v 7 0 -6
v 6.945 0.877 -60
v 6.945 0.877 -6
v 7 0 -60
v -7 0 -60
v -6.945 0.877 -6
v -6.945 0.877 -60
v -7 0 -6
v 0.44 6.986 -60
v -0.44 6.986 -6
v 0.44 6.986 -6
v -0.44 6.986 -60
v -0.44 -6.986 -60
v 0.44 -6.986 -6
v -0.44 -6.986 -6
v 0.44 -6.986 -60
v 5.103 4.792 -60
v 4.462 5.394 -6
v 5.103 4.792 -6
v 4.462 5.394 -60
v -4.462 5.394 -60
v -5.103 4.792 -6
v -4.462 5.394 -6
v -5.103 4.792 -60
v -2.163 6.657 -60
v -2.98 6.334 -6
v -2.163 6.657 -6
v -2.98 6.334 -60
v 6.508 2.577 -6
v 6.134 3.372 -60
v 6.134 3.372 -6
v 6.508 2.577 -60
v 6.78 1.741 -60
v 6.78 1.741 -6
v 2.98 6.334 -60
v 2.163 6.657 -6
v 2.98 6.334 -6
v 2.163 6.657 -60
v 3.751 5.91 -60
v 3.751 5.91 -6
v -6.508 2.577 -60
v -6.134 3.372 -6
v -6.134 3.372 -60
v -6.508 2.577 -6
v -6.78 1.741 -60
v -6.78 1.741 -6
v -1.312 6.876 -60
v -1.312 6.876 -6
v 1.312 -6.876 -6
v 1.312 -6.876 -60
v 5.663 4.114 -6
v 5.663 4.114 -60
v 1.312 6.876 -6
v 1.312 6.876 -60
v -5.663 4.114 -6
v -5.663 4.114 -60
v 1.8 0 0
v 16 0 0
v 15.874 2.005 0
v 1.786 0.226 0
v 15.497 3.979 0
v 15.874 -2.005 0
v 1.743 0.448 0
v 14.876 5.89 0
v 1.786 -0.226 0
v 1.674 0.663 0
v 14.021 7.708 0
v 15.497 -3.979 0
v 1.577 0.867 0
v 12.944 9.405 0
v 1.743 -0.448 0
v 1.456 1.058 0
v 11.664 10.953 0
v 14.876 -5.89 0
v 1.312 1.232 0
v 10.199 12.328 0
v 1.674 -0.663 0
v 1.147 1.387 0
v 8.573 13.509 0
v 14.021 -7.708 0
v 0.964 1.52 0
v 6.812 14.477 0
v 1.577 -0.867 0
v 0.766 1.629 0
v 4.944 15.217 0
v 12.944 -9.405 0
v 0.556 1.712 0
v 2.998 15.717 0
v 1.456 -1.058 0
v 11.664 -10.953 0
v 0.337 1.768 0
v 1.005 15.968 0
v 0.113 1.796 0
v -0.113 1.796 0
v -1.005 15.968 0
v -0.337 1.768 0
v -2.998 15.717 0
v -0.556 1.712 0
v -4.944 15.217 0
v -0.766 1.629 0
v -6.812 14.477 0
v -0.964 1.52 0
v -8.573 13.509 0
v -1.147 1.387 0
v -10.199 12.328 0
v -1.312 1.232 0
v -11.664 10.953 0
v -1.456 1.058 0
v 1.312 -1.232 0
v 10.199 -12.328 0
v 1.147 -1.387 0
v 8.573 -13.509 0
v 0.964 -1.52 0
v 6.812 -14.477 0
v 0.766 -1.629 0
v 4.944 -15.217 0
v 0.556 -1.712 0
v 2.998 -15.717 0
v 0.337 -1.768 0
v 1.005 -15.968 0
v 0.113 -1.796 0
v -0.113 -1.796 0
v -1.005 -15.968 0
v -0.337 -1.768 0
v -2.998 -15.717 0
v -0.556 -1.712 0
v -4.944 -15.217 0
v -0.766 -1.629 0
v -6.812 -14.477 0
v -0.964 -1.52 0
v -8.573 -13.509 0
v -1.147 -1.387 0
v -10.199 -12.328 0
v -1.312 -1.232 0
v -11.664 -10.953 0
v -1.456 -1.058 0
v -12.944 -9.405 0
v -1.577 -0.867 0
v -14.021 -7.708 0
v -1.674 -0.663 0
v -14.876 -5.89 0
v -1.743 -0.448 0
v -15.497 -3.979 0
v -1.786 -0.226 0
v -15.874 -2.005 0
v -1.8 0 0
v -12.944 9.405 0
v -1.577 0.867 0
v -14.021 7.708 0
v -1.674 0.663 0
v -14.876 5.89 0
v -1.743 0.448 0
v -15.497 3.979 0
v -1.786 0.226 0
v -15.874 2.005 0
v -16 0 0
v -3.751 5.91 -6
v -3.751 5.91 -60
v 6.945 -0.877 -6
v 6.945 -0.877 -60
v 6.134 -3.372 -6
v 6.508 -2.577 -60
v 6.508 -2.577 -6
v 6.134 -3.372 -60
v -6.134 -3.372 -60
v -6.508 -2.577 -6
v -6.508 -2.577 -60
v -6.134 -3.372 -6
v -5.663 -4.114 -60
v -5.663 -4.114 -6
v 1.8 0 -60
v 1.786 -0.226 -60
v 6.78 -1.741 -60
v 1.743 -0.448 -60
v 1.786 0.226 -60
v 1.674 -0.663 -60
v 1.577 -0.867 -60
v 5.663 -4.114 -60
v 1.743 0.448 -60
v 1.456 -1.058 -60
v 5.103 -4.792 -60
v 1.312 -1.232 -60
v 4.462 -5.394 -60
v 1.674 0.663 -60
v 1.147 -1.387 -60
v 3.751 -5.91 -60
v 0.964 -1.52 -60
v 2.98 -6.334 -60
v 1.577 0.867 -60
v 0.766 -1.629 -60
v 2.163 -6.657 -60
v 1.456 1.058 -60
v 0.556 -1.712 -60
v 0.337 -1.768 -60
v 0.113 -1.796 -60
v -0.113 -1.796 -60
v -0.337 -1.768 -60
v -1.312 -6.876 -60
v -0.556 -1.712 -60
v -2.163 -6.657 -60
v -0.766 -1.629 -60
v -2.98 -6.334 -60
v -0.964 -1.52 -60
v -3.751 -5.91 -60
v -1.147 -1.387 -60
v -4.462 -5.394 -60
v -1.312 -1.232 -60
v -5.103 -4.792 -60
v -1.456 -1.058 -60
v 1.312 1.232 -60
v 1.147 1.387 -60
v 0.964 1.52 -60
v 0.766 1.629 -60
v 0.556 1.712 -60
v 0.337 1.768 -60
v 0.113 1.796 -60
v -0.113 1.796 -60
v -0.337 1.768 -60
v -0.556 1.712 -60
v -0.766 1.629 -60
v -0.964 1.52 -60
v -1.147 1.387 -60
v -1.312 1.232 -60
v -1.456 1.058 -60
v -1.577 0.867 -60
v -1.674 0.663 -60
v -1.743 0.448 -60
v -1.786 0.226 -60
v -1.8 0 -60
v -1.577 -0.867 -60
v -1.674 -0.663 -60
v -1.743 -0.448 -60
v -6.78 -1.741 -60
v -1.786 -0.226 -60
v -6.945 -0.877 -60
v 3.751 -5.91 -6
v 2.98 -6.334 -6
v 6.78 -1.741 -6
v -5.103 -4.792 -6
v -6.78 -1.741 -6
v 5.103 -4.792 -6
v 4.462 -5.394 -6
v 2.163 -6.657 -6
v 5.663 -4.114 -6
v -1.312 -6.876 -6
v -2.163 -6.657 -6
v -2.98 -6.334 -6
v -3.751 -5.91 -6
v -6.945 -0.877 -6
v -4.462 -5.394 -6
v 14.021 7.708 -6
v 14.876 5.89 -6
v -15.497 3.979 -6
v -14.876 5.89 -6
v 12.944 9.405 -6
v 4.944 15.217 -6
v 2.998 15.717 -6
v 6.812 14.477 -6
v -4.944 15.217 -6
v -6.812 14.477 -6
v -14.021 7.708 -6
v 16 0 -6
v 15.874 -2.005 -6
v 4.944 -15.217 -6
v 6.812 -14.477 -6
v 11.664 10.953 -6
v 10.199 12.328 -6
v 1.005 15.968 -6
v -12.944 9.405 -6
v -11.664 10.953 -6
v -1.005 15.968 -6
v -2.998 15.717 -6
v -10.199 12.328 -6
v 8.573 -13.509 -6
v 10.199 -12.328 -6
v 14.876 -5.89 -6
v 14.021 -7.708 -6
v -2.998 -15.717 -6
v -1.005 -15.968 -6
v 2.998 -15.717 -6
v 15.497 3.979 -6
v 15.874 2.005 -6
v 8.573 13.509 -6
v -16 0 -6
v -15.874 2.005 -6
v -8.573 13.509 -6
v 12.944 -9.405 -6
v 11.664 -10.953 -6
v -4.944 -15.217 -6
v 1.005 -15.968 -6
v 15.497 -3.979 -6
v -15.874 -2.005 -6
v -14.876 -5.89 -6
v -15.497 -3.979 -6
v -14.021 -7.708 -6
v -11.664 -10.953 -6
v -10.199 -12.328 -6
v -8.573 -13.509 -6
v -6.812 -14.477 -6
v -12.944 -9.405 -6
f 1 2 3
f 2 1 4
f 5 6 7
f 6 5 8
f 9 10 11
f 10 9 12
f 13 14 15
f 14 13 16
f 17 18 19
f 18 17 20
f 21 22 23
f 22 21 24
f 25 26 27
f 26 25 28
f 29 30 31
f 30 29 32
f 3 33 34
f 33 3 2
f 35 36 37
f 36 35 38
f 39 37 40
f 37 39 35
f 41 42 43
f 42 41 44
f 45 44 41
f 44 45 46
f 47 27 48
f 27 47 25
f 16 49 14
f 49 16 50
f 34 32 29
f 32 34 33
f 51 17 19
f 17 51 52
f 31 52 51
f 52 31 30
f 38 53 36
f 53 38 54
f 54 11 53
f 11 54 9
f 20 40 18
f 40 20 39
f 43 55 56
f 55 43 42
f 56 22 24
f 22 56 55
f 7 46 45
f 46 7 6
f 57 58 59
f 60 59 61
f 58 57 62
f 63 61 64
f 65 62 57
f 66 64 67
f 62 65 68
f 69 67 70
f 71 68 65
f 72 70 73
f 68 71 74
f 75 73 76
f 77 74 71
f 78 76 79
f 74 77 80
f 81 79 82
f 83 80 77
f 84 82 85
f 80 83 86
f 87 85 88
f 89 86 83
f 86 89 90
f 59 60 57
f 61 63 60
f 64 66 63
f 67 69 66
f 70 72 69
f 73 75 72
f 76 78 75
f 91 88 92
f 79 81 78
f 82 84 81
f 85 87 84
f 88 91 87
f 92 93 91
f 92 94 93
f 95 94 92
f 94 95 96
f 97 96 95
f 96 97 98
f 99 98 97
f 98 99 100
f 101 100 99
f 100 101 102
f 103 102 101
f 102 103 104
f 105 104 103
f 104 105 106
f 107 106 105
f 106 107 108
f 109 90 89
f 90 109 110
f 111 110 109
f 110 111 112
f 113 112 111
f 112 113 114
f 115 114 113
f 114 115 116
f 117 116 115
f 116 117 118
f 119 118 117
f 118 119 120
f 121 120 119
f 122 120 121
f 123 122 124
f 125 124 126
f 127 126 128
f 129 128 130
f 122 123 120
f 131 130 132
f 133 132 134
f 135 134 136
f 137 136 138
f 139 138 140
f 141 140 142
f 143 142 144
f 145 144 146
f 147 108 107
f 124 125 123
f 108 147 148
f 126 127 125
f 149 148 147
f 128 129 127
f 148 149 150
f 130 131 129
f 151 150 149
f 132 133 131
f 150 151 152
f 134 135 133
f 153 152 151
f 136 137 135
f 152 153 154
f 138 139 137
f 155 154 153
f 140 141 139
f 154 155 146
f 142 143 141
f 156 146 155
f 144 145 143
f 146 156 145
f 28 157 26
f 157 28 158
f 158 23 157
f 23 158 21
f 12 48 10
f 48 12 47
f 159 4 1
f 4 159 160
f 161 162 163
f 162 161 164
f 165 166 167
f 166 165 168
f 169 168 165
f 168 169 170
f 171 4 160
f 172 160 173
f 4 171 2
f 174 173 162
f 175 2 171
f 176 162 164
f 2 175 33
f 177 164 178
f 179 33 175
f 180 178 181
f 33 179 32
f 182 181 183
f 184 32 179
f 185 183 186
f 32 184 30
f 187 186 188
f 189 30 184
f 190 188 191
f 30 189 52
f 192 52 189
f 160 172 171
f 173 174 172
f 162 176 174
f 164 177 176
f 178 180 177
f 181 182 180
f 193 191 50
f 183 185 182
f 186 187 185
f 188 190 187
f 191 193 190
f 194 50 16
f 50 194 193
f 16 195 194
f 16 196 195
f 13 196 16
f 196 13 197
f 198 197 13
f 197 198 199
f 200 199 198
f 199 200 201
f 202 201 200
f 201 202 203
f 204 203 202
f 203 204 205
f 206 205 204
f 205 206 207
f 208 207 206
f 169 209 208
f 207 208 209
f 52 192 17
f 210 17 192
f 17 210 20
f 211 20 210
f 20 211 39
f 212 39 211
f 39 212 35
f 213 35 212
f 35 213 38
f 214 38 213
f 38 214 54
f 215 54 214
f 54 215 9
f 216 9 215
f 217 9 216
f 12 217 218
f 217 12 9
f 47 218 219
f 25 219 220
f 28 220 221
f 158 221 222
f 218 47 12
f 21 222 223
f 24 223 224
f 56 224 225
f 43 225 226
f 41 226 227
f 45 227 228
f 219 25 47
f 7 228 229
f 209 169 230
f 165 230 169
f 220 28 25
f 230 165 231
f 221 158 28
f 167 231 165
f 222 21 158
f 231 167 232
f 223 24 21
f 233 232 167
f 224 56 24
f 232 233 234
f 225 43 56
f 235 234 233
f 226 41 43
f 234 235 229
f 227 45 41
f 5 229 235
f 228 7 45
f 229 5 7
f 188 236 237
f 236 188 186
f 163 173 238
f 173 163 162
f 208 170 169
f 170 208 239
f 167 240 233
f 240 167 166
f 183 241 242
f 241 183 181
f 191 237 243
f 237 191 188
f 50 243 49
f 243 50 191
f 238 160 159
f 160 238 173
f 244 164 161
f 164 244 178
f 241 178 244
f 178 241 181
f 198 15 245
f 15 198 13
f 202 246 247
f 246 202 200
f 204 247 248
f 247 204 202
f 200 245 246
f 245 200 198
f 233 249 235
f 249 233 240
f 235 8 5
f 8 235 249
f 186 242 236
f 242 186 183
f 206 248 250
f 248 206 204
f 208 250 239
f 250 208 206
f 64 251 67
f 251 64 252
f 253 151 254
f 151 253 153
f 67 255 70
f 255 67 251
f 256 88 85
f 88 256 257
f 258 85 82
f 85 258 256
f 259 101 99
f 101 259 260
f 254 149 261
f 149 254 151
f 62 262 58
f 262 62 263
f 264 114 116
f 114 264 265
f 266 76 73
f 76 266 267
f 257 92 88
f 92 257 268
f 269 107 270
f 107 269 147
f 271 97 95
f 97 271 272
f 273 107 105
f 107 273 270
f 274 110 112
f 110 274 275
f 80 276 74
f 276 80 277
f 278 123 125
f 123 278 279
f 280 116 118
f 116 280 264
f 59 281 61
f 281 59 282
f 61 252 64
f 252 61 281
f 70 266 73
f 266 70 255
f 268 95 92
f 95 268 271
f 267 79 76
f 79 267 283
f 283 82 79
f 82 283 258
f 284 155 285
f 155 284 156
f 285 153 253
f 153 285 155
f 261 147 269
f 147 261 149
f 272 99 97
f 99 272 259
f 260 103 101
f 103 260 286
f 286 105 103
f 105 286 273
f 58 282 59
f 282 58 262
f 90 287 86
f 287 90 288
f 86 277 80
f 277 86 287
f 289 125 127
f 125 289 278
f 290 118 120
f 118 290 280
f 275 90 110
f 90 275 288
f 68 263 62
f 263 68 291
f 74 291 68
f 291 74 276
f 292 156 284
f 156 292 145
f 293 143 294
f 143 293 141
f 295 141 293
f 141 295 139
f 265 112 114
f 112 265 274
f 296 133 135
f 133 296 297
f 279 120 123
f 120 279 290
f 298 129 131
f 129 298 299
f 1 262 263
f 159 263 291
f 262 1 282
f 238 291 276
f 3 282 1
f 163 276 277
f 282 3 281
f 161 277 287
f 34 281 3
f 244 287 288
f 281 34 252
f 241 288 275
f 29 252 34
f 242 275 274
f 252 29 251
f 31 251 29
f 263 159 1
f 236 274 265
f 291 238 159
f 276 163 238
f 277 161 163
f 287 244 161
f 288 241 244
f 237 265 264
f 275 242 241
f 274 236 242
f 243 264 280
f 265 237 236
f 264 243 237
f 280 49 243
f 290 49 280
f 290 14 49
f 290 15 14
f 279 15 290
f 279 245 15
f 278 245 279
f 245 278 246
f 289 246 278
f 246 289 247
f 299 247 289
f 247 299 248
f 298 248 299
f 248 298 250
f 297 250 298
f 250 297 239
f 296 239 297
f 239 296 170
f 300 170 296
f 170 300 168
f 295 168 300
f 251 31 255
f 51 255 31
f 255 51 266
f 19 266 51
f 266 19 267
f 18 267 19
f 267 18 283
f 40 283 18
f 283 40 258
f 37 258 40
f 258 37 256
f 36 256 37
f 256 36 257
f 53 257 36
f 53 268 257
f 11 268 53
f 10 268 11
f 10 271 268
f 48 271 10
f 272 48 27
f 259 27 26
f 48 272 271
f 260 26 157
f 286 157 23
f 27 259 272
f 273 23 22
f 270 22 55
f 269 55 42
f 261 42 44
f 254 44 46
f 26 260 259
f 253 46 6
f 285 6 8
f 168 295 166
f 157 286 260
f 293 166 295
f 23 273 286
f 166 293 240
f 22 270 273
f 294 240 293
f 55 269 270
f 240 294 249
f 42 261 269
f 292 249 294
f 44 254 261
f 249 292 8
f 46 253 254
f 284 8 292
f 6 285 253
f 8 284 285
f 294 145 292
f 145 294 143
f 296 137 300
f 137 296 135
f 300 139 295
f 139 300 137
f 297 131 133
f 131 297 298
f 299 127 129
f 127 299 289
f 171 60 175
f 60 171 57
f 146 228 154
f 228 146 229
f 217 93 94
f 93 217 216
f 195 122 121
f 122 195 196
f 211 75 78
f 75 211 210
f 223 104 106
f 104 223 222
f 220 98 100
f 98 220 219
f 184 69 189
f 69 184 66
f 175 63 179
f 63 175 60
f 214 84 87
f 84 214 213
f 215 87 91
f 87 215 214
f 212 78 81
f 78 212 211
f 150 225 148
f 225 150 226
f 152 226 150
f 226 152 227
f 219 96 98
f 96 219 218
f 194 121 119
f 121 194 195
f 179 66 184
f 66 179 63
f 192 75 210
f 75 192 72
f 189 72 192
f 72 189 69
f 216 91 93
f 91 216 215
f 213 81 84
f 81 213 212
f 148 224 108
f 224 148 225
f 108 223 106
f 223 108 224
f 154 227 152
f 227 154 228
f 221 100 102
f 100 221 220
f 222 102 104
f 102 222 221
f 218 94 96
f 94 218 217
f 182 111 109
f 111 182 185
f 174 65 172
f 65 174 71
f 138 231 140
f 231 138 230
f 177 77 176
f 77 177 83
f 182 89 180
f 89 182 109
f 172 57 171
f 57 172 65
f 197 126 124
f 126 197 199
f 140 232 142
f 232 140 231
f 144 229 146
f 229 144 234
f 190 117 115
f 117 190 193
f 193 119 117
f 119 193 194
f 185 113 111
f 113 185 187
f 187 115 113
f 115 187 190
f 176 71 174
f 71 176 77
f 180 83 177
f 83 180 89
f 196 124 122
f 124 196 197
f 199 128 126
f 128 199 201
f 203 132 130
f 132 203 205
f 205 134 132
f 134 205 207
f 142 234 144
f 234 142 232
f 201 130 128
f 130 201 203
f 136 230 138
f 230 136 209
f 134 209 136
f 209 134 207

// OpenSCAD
$fn = 50;


difference() {
	union() {
		translate(v = [0, 0, -60.0000000000]) {
			cylinder(h = 60, r = 7.0000000000);
		}
		translate(v = [0, 0, -6.0000000000]) {
			cylinder(h = 6, r = 16.0000000000);
		}
	}
	union() {
		#translate(v = [0, 0, -60]) {
			cylinder(h = 60, r = 1.8000000000);
		}
	}
}
